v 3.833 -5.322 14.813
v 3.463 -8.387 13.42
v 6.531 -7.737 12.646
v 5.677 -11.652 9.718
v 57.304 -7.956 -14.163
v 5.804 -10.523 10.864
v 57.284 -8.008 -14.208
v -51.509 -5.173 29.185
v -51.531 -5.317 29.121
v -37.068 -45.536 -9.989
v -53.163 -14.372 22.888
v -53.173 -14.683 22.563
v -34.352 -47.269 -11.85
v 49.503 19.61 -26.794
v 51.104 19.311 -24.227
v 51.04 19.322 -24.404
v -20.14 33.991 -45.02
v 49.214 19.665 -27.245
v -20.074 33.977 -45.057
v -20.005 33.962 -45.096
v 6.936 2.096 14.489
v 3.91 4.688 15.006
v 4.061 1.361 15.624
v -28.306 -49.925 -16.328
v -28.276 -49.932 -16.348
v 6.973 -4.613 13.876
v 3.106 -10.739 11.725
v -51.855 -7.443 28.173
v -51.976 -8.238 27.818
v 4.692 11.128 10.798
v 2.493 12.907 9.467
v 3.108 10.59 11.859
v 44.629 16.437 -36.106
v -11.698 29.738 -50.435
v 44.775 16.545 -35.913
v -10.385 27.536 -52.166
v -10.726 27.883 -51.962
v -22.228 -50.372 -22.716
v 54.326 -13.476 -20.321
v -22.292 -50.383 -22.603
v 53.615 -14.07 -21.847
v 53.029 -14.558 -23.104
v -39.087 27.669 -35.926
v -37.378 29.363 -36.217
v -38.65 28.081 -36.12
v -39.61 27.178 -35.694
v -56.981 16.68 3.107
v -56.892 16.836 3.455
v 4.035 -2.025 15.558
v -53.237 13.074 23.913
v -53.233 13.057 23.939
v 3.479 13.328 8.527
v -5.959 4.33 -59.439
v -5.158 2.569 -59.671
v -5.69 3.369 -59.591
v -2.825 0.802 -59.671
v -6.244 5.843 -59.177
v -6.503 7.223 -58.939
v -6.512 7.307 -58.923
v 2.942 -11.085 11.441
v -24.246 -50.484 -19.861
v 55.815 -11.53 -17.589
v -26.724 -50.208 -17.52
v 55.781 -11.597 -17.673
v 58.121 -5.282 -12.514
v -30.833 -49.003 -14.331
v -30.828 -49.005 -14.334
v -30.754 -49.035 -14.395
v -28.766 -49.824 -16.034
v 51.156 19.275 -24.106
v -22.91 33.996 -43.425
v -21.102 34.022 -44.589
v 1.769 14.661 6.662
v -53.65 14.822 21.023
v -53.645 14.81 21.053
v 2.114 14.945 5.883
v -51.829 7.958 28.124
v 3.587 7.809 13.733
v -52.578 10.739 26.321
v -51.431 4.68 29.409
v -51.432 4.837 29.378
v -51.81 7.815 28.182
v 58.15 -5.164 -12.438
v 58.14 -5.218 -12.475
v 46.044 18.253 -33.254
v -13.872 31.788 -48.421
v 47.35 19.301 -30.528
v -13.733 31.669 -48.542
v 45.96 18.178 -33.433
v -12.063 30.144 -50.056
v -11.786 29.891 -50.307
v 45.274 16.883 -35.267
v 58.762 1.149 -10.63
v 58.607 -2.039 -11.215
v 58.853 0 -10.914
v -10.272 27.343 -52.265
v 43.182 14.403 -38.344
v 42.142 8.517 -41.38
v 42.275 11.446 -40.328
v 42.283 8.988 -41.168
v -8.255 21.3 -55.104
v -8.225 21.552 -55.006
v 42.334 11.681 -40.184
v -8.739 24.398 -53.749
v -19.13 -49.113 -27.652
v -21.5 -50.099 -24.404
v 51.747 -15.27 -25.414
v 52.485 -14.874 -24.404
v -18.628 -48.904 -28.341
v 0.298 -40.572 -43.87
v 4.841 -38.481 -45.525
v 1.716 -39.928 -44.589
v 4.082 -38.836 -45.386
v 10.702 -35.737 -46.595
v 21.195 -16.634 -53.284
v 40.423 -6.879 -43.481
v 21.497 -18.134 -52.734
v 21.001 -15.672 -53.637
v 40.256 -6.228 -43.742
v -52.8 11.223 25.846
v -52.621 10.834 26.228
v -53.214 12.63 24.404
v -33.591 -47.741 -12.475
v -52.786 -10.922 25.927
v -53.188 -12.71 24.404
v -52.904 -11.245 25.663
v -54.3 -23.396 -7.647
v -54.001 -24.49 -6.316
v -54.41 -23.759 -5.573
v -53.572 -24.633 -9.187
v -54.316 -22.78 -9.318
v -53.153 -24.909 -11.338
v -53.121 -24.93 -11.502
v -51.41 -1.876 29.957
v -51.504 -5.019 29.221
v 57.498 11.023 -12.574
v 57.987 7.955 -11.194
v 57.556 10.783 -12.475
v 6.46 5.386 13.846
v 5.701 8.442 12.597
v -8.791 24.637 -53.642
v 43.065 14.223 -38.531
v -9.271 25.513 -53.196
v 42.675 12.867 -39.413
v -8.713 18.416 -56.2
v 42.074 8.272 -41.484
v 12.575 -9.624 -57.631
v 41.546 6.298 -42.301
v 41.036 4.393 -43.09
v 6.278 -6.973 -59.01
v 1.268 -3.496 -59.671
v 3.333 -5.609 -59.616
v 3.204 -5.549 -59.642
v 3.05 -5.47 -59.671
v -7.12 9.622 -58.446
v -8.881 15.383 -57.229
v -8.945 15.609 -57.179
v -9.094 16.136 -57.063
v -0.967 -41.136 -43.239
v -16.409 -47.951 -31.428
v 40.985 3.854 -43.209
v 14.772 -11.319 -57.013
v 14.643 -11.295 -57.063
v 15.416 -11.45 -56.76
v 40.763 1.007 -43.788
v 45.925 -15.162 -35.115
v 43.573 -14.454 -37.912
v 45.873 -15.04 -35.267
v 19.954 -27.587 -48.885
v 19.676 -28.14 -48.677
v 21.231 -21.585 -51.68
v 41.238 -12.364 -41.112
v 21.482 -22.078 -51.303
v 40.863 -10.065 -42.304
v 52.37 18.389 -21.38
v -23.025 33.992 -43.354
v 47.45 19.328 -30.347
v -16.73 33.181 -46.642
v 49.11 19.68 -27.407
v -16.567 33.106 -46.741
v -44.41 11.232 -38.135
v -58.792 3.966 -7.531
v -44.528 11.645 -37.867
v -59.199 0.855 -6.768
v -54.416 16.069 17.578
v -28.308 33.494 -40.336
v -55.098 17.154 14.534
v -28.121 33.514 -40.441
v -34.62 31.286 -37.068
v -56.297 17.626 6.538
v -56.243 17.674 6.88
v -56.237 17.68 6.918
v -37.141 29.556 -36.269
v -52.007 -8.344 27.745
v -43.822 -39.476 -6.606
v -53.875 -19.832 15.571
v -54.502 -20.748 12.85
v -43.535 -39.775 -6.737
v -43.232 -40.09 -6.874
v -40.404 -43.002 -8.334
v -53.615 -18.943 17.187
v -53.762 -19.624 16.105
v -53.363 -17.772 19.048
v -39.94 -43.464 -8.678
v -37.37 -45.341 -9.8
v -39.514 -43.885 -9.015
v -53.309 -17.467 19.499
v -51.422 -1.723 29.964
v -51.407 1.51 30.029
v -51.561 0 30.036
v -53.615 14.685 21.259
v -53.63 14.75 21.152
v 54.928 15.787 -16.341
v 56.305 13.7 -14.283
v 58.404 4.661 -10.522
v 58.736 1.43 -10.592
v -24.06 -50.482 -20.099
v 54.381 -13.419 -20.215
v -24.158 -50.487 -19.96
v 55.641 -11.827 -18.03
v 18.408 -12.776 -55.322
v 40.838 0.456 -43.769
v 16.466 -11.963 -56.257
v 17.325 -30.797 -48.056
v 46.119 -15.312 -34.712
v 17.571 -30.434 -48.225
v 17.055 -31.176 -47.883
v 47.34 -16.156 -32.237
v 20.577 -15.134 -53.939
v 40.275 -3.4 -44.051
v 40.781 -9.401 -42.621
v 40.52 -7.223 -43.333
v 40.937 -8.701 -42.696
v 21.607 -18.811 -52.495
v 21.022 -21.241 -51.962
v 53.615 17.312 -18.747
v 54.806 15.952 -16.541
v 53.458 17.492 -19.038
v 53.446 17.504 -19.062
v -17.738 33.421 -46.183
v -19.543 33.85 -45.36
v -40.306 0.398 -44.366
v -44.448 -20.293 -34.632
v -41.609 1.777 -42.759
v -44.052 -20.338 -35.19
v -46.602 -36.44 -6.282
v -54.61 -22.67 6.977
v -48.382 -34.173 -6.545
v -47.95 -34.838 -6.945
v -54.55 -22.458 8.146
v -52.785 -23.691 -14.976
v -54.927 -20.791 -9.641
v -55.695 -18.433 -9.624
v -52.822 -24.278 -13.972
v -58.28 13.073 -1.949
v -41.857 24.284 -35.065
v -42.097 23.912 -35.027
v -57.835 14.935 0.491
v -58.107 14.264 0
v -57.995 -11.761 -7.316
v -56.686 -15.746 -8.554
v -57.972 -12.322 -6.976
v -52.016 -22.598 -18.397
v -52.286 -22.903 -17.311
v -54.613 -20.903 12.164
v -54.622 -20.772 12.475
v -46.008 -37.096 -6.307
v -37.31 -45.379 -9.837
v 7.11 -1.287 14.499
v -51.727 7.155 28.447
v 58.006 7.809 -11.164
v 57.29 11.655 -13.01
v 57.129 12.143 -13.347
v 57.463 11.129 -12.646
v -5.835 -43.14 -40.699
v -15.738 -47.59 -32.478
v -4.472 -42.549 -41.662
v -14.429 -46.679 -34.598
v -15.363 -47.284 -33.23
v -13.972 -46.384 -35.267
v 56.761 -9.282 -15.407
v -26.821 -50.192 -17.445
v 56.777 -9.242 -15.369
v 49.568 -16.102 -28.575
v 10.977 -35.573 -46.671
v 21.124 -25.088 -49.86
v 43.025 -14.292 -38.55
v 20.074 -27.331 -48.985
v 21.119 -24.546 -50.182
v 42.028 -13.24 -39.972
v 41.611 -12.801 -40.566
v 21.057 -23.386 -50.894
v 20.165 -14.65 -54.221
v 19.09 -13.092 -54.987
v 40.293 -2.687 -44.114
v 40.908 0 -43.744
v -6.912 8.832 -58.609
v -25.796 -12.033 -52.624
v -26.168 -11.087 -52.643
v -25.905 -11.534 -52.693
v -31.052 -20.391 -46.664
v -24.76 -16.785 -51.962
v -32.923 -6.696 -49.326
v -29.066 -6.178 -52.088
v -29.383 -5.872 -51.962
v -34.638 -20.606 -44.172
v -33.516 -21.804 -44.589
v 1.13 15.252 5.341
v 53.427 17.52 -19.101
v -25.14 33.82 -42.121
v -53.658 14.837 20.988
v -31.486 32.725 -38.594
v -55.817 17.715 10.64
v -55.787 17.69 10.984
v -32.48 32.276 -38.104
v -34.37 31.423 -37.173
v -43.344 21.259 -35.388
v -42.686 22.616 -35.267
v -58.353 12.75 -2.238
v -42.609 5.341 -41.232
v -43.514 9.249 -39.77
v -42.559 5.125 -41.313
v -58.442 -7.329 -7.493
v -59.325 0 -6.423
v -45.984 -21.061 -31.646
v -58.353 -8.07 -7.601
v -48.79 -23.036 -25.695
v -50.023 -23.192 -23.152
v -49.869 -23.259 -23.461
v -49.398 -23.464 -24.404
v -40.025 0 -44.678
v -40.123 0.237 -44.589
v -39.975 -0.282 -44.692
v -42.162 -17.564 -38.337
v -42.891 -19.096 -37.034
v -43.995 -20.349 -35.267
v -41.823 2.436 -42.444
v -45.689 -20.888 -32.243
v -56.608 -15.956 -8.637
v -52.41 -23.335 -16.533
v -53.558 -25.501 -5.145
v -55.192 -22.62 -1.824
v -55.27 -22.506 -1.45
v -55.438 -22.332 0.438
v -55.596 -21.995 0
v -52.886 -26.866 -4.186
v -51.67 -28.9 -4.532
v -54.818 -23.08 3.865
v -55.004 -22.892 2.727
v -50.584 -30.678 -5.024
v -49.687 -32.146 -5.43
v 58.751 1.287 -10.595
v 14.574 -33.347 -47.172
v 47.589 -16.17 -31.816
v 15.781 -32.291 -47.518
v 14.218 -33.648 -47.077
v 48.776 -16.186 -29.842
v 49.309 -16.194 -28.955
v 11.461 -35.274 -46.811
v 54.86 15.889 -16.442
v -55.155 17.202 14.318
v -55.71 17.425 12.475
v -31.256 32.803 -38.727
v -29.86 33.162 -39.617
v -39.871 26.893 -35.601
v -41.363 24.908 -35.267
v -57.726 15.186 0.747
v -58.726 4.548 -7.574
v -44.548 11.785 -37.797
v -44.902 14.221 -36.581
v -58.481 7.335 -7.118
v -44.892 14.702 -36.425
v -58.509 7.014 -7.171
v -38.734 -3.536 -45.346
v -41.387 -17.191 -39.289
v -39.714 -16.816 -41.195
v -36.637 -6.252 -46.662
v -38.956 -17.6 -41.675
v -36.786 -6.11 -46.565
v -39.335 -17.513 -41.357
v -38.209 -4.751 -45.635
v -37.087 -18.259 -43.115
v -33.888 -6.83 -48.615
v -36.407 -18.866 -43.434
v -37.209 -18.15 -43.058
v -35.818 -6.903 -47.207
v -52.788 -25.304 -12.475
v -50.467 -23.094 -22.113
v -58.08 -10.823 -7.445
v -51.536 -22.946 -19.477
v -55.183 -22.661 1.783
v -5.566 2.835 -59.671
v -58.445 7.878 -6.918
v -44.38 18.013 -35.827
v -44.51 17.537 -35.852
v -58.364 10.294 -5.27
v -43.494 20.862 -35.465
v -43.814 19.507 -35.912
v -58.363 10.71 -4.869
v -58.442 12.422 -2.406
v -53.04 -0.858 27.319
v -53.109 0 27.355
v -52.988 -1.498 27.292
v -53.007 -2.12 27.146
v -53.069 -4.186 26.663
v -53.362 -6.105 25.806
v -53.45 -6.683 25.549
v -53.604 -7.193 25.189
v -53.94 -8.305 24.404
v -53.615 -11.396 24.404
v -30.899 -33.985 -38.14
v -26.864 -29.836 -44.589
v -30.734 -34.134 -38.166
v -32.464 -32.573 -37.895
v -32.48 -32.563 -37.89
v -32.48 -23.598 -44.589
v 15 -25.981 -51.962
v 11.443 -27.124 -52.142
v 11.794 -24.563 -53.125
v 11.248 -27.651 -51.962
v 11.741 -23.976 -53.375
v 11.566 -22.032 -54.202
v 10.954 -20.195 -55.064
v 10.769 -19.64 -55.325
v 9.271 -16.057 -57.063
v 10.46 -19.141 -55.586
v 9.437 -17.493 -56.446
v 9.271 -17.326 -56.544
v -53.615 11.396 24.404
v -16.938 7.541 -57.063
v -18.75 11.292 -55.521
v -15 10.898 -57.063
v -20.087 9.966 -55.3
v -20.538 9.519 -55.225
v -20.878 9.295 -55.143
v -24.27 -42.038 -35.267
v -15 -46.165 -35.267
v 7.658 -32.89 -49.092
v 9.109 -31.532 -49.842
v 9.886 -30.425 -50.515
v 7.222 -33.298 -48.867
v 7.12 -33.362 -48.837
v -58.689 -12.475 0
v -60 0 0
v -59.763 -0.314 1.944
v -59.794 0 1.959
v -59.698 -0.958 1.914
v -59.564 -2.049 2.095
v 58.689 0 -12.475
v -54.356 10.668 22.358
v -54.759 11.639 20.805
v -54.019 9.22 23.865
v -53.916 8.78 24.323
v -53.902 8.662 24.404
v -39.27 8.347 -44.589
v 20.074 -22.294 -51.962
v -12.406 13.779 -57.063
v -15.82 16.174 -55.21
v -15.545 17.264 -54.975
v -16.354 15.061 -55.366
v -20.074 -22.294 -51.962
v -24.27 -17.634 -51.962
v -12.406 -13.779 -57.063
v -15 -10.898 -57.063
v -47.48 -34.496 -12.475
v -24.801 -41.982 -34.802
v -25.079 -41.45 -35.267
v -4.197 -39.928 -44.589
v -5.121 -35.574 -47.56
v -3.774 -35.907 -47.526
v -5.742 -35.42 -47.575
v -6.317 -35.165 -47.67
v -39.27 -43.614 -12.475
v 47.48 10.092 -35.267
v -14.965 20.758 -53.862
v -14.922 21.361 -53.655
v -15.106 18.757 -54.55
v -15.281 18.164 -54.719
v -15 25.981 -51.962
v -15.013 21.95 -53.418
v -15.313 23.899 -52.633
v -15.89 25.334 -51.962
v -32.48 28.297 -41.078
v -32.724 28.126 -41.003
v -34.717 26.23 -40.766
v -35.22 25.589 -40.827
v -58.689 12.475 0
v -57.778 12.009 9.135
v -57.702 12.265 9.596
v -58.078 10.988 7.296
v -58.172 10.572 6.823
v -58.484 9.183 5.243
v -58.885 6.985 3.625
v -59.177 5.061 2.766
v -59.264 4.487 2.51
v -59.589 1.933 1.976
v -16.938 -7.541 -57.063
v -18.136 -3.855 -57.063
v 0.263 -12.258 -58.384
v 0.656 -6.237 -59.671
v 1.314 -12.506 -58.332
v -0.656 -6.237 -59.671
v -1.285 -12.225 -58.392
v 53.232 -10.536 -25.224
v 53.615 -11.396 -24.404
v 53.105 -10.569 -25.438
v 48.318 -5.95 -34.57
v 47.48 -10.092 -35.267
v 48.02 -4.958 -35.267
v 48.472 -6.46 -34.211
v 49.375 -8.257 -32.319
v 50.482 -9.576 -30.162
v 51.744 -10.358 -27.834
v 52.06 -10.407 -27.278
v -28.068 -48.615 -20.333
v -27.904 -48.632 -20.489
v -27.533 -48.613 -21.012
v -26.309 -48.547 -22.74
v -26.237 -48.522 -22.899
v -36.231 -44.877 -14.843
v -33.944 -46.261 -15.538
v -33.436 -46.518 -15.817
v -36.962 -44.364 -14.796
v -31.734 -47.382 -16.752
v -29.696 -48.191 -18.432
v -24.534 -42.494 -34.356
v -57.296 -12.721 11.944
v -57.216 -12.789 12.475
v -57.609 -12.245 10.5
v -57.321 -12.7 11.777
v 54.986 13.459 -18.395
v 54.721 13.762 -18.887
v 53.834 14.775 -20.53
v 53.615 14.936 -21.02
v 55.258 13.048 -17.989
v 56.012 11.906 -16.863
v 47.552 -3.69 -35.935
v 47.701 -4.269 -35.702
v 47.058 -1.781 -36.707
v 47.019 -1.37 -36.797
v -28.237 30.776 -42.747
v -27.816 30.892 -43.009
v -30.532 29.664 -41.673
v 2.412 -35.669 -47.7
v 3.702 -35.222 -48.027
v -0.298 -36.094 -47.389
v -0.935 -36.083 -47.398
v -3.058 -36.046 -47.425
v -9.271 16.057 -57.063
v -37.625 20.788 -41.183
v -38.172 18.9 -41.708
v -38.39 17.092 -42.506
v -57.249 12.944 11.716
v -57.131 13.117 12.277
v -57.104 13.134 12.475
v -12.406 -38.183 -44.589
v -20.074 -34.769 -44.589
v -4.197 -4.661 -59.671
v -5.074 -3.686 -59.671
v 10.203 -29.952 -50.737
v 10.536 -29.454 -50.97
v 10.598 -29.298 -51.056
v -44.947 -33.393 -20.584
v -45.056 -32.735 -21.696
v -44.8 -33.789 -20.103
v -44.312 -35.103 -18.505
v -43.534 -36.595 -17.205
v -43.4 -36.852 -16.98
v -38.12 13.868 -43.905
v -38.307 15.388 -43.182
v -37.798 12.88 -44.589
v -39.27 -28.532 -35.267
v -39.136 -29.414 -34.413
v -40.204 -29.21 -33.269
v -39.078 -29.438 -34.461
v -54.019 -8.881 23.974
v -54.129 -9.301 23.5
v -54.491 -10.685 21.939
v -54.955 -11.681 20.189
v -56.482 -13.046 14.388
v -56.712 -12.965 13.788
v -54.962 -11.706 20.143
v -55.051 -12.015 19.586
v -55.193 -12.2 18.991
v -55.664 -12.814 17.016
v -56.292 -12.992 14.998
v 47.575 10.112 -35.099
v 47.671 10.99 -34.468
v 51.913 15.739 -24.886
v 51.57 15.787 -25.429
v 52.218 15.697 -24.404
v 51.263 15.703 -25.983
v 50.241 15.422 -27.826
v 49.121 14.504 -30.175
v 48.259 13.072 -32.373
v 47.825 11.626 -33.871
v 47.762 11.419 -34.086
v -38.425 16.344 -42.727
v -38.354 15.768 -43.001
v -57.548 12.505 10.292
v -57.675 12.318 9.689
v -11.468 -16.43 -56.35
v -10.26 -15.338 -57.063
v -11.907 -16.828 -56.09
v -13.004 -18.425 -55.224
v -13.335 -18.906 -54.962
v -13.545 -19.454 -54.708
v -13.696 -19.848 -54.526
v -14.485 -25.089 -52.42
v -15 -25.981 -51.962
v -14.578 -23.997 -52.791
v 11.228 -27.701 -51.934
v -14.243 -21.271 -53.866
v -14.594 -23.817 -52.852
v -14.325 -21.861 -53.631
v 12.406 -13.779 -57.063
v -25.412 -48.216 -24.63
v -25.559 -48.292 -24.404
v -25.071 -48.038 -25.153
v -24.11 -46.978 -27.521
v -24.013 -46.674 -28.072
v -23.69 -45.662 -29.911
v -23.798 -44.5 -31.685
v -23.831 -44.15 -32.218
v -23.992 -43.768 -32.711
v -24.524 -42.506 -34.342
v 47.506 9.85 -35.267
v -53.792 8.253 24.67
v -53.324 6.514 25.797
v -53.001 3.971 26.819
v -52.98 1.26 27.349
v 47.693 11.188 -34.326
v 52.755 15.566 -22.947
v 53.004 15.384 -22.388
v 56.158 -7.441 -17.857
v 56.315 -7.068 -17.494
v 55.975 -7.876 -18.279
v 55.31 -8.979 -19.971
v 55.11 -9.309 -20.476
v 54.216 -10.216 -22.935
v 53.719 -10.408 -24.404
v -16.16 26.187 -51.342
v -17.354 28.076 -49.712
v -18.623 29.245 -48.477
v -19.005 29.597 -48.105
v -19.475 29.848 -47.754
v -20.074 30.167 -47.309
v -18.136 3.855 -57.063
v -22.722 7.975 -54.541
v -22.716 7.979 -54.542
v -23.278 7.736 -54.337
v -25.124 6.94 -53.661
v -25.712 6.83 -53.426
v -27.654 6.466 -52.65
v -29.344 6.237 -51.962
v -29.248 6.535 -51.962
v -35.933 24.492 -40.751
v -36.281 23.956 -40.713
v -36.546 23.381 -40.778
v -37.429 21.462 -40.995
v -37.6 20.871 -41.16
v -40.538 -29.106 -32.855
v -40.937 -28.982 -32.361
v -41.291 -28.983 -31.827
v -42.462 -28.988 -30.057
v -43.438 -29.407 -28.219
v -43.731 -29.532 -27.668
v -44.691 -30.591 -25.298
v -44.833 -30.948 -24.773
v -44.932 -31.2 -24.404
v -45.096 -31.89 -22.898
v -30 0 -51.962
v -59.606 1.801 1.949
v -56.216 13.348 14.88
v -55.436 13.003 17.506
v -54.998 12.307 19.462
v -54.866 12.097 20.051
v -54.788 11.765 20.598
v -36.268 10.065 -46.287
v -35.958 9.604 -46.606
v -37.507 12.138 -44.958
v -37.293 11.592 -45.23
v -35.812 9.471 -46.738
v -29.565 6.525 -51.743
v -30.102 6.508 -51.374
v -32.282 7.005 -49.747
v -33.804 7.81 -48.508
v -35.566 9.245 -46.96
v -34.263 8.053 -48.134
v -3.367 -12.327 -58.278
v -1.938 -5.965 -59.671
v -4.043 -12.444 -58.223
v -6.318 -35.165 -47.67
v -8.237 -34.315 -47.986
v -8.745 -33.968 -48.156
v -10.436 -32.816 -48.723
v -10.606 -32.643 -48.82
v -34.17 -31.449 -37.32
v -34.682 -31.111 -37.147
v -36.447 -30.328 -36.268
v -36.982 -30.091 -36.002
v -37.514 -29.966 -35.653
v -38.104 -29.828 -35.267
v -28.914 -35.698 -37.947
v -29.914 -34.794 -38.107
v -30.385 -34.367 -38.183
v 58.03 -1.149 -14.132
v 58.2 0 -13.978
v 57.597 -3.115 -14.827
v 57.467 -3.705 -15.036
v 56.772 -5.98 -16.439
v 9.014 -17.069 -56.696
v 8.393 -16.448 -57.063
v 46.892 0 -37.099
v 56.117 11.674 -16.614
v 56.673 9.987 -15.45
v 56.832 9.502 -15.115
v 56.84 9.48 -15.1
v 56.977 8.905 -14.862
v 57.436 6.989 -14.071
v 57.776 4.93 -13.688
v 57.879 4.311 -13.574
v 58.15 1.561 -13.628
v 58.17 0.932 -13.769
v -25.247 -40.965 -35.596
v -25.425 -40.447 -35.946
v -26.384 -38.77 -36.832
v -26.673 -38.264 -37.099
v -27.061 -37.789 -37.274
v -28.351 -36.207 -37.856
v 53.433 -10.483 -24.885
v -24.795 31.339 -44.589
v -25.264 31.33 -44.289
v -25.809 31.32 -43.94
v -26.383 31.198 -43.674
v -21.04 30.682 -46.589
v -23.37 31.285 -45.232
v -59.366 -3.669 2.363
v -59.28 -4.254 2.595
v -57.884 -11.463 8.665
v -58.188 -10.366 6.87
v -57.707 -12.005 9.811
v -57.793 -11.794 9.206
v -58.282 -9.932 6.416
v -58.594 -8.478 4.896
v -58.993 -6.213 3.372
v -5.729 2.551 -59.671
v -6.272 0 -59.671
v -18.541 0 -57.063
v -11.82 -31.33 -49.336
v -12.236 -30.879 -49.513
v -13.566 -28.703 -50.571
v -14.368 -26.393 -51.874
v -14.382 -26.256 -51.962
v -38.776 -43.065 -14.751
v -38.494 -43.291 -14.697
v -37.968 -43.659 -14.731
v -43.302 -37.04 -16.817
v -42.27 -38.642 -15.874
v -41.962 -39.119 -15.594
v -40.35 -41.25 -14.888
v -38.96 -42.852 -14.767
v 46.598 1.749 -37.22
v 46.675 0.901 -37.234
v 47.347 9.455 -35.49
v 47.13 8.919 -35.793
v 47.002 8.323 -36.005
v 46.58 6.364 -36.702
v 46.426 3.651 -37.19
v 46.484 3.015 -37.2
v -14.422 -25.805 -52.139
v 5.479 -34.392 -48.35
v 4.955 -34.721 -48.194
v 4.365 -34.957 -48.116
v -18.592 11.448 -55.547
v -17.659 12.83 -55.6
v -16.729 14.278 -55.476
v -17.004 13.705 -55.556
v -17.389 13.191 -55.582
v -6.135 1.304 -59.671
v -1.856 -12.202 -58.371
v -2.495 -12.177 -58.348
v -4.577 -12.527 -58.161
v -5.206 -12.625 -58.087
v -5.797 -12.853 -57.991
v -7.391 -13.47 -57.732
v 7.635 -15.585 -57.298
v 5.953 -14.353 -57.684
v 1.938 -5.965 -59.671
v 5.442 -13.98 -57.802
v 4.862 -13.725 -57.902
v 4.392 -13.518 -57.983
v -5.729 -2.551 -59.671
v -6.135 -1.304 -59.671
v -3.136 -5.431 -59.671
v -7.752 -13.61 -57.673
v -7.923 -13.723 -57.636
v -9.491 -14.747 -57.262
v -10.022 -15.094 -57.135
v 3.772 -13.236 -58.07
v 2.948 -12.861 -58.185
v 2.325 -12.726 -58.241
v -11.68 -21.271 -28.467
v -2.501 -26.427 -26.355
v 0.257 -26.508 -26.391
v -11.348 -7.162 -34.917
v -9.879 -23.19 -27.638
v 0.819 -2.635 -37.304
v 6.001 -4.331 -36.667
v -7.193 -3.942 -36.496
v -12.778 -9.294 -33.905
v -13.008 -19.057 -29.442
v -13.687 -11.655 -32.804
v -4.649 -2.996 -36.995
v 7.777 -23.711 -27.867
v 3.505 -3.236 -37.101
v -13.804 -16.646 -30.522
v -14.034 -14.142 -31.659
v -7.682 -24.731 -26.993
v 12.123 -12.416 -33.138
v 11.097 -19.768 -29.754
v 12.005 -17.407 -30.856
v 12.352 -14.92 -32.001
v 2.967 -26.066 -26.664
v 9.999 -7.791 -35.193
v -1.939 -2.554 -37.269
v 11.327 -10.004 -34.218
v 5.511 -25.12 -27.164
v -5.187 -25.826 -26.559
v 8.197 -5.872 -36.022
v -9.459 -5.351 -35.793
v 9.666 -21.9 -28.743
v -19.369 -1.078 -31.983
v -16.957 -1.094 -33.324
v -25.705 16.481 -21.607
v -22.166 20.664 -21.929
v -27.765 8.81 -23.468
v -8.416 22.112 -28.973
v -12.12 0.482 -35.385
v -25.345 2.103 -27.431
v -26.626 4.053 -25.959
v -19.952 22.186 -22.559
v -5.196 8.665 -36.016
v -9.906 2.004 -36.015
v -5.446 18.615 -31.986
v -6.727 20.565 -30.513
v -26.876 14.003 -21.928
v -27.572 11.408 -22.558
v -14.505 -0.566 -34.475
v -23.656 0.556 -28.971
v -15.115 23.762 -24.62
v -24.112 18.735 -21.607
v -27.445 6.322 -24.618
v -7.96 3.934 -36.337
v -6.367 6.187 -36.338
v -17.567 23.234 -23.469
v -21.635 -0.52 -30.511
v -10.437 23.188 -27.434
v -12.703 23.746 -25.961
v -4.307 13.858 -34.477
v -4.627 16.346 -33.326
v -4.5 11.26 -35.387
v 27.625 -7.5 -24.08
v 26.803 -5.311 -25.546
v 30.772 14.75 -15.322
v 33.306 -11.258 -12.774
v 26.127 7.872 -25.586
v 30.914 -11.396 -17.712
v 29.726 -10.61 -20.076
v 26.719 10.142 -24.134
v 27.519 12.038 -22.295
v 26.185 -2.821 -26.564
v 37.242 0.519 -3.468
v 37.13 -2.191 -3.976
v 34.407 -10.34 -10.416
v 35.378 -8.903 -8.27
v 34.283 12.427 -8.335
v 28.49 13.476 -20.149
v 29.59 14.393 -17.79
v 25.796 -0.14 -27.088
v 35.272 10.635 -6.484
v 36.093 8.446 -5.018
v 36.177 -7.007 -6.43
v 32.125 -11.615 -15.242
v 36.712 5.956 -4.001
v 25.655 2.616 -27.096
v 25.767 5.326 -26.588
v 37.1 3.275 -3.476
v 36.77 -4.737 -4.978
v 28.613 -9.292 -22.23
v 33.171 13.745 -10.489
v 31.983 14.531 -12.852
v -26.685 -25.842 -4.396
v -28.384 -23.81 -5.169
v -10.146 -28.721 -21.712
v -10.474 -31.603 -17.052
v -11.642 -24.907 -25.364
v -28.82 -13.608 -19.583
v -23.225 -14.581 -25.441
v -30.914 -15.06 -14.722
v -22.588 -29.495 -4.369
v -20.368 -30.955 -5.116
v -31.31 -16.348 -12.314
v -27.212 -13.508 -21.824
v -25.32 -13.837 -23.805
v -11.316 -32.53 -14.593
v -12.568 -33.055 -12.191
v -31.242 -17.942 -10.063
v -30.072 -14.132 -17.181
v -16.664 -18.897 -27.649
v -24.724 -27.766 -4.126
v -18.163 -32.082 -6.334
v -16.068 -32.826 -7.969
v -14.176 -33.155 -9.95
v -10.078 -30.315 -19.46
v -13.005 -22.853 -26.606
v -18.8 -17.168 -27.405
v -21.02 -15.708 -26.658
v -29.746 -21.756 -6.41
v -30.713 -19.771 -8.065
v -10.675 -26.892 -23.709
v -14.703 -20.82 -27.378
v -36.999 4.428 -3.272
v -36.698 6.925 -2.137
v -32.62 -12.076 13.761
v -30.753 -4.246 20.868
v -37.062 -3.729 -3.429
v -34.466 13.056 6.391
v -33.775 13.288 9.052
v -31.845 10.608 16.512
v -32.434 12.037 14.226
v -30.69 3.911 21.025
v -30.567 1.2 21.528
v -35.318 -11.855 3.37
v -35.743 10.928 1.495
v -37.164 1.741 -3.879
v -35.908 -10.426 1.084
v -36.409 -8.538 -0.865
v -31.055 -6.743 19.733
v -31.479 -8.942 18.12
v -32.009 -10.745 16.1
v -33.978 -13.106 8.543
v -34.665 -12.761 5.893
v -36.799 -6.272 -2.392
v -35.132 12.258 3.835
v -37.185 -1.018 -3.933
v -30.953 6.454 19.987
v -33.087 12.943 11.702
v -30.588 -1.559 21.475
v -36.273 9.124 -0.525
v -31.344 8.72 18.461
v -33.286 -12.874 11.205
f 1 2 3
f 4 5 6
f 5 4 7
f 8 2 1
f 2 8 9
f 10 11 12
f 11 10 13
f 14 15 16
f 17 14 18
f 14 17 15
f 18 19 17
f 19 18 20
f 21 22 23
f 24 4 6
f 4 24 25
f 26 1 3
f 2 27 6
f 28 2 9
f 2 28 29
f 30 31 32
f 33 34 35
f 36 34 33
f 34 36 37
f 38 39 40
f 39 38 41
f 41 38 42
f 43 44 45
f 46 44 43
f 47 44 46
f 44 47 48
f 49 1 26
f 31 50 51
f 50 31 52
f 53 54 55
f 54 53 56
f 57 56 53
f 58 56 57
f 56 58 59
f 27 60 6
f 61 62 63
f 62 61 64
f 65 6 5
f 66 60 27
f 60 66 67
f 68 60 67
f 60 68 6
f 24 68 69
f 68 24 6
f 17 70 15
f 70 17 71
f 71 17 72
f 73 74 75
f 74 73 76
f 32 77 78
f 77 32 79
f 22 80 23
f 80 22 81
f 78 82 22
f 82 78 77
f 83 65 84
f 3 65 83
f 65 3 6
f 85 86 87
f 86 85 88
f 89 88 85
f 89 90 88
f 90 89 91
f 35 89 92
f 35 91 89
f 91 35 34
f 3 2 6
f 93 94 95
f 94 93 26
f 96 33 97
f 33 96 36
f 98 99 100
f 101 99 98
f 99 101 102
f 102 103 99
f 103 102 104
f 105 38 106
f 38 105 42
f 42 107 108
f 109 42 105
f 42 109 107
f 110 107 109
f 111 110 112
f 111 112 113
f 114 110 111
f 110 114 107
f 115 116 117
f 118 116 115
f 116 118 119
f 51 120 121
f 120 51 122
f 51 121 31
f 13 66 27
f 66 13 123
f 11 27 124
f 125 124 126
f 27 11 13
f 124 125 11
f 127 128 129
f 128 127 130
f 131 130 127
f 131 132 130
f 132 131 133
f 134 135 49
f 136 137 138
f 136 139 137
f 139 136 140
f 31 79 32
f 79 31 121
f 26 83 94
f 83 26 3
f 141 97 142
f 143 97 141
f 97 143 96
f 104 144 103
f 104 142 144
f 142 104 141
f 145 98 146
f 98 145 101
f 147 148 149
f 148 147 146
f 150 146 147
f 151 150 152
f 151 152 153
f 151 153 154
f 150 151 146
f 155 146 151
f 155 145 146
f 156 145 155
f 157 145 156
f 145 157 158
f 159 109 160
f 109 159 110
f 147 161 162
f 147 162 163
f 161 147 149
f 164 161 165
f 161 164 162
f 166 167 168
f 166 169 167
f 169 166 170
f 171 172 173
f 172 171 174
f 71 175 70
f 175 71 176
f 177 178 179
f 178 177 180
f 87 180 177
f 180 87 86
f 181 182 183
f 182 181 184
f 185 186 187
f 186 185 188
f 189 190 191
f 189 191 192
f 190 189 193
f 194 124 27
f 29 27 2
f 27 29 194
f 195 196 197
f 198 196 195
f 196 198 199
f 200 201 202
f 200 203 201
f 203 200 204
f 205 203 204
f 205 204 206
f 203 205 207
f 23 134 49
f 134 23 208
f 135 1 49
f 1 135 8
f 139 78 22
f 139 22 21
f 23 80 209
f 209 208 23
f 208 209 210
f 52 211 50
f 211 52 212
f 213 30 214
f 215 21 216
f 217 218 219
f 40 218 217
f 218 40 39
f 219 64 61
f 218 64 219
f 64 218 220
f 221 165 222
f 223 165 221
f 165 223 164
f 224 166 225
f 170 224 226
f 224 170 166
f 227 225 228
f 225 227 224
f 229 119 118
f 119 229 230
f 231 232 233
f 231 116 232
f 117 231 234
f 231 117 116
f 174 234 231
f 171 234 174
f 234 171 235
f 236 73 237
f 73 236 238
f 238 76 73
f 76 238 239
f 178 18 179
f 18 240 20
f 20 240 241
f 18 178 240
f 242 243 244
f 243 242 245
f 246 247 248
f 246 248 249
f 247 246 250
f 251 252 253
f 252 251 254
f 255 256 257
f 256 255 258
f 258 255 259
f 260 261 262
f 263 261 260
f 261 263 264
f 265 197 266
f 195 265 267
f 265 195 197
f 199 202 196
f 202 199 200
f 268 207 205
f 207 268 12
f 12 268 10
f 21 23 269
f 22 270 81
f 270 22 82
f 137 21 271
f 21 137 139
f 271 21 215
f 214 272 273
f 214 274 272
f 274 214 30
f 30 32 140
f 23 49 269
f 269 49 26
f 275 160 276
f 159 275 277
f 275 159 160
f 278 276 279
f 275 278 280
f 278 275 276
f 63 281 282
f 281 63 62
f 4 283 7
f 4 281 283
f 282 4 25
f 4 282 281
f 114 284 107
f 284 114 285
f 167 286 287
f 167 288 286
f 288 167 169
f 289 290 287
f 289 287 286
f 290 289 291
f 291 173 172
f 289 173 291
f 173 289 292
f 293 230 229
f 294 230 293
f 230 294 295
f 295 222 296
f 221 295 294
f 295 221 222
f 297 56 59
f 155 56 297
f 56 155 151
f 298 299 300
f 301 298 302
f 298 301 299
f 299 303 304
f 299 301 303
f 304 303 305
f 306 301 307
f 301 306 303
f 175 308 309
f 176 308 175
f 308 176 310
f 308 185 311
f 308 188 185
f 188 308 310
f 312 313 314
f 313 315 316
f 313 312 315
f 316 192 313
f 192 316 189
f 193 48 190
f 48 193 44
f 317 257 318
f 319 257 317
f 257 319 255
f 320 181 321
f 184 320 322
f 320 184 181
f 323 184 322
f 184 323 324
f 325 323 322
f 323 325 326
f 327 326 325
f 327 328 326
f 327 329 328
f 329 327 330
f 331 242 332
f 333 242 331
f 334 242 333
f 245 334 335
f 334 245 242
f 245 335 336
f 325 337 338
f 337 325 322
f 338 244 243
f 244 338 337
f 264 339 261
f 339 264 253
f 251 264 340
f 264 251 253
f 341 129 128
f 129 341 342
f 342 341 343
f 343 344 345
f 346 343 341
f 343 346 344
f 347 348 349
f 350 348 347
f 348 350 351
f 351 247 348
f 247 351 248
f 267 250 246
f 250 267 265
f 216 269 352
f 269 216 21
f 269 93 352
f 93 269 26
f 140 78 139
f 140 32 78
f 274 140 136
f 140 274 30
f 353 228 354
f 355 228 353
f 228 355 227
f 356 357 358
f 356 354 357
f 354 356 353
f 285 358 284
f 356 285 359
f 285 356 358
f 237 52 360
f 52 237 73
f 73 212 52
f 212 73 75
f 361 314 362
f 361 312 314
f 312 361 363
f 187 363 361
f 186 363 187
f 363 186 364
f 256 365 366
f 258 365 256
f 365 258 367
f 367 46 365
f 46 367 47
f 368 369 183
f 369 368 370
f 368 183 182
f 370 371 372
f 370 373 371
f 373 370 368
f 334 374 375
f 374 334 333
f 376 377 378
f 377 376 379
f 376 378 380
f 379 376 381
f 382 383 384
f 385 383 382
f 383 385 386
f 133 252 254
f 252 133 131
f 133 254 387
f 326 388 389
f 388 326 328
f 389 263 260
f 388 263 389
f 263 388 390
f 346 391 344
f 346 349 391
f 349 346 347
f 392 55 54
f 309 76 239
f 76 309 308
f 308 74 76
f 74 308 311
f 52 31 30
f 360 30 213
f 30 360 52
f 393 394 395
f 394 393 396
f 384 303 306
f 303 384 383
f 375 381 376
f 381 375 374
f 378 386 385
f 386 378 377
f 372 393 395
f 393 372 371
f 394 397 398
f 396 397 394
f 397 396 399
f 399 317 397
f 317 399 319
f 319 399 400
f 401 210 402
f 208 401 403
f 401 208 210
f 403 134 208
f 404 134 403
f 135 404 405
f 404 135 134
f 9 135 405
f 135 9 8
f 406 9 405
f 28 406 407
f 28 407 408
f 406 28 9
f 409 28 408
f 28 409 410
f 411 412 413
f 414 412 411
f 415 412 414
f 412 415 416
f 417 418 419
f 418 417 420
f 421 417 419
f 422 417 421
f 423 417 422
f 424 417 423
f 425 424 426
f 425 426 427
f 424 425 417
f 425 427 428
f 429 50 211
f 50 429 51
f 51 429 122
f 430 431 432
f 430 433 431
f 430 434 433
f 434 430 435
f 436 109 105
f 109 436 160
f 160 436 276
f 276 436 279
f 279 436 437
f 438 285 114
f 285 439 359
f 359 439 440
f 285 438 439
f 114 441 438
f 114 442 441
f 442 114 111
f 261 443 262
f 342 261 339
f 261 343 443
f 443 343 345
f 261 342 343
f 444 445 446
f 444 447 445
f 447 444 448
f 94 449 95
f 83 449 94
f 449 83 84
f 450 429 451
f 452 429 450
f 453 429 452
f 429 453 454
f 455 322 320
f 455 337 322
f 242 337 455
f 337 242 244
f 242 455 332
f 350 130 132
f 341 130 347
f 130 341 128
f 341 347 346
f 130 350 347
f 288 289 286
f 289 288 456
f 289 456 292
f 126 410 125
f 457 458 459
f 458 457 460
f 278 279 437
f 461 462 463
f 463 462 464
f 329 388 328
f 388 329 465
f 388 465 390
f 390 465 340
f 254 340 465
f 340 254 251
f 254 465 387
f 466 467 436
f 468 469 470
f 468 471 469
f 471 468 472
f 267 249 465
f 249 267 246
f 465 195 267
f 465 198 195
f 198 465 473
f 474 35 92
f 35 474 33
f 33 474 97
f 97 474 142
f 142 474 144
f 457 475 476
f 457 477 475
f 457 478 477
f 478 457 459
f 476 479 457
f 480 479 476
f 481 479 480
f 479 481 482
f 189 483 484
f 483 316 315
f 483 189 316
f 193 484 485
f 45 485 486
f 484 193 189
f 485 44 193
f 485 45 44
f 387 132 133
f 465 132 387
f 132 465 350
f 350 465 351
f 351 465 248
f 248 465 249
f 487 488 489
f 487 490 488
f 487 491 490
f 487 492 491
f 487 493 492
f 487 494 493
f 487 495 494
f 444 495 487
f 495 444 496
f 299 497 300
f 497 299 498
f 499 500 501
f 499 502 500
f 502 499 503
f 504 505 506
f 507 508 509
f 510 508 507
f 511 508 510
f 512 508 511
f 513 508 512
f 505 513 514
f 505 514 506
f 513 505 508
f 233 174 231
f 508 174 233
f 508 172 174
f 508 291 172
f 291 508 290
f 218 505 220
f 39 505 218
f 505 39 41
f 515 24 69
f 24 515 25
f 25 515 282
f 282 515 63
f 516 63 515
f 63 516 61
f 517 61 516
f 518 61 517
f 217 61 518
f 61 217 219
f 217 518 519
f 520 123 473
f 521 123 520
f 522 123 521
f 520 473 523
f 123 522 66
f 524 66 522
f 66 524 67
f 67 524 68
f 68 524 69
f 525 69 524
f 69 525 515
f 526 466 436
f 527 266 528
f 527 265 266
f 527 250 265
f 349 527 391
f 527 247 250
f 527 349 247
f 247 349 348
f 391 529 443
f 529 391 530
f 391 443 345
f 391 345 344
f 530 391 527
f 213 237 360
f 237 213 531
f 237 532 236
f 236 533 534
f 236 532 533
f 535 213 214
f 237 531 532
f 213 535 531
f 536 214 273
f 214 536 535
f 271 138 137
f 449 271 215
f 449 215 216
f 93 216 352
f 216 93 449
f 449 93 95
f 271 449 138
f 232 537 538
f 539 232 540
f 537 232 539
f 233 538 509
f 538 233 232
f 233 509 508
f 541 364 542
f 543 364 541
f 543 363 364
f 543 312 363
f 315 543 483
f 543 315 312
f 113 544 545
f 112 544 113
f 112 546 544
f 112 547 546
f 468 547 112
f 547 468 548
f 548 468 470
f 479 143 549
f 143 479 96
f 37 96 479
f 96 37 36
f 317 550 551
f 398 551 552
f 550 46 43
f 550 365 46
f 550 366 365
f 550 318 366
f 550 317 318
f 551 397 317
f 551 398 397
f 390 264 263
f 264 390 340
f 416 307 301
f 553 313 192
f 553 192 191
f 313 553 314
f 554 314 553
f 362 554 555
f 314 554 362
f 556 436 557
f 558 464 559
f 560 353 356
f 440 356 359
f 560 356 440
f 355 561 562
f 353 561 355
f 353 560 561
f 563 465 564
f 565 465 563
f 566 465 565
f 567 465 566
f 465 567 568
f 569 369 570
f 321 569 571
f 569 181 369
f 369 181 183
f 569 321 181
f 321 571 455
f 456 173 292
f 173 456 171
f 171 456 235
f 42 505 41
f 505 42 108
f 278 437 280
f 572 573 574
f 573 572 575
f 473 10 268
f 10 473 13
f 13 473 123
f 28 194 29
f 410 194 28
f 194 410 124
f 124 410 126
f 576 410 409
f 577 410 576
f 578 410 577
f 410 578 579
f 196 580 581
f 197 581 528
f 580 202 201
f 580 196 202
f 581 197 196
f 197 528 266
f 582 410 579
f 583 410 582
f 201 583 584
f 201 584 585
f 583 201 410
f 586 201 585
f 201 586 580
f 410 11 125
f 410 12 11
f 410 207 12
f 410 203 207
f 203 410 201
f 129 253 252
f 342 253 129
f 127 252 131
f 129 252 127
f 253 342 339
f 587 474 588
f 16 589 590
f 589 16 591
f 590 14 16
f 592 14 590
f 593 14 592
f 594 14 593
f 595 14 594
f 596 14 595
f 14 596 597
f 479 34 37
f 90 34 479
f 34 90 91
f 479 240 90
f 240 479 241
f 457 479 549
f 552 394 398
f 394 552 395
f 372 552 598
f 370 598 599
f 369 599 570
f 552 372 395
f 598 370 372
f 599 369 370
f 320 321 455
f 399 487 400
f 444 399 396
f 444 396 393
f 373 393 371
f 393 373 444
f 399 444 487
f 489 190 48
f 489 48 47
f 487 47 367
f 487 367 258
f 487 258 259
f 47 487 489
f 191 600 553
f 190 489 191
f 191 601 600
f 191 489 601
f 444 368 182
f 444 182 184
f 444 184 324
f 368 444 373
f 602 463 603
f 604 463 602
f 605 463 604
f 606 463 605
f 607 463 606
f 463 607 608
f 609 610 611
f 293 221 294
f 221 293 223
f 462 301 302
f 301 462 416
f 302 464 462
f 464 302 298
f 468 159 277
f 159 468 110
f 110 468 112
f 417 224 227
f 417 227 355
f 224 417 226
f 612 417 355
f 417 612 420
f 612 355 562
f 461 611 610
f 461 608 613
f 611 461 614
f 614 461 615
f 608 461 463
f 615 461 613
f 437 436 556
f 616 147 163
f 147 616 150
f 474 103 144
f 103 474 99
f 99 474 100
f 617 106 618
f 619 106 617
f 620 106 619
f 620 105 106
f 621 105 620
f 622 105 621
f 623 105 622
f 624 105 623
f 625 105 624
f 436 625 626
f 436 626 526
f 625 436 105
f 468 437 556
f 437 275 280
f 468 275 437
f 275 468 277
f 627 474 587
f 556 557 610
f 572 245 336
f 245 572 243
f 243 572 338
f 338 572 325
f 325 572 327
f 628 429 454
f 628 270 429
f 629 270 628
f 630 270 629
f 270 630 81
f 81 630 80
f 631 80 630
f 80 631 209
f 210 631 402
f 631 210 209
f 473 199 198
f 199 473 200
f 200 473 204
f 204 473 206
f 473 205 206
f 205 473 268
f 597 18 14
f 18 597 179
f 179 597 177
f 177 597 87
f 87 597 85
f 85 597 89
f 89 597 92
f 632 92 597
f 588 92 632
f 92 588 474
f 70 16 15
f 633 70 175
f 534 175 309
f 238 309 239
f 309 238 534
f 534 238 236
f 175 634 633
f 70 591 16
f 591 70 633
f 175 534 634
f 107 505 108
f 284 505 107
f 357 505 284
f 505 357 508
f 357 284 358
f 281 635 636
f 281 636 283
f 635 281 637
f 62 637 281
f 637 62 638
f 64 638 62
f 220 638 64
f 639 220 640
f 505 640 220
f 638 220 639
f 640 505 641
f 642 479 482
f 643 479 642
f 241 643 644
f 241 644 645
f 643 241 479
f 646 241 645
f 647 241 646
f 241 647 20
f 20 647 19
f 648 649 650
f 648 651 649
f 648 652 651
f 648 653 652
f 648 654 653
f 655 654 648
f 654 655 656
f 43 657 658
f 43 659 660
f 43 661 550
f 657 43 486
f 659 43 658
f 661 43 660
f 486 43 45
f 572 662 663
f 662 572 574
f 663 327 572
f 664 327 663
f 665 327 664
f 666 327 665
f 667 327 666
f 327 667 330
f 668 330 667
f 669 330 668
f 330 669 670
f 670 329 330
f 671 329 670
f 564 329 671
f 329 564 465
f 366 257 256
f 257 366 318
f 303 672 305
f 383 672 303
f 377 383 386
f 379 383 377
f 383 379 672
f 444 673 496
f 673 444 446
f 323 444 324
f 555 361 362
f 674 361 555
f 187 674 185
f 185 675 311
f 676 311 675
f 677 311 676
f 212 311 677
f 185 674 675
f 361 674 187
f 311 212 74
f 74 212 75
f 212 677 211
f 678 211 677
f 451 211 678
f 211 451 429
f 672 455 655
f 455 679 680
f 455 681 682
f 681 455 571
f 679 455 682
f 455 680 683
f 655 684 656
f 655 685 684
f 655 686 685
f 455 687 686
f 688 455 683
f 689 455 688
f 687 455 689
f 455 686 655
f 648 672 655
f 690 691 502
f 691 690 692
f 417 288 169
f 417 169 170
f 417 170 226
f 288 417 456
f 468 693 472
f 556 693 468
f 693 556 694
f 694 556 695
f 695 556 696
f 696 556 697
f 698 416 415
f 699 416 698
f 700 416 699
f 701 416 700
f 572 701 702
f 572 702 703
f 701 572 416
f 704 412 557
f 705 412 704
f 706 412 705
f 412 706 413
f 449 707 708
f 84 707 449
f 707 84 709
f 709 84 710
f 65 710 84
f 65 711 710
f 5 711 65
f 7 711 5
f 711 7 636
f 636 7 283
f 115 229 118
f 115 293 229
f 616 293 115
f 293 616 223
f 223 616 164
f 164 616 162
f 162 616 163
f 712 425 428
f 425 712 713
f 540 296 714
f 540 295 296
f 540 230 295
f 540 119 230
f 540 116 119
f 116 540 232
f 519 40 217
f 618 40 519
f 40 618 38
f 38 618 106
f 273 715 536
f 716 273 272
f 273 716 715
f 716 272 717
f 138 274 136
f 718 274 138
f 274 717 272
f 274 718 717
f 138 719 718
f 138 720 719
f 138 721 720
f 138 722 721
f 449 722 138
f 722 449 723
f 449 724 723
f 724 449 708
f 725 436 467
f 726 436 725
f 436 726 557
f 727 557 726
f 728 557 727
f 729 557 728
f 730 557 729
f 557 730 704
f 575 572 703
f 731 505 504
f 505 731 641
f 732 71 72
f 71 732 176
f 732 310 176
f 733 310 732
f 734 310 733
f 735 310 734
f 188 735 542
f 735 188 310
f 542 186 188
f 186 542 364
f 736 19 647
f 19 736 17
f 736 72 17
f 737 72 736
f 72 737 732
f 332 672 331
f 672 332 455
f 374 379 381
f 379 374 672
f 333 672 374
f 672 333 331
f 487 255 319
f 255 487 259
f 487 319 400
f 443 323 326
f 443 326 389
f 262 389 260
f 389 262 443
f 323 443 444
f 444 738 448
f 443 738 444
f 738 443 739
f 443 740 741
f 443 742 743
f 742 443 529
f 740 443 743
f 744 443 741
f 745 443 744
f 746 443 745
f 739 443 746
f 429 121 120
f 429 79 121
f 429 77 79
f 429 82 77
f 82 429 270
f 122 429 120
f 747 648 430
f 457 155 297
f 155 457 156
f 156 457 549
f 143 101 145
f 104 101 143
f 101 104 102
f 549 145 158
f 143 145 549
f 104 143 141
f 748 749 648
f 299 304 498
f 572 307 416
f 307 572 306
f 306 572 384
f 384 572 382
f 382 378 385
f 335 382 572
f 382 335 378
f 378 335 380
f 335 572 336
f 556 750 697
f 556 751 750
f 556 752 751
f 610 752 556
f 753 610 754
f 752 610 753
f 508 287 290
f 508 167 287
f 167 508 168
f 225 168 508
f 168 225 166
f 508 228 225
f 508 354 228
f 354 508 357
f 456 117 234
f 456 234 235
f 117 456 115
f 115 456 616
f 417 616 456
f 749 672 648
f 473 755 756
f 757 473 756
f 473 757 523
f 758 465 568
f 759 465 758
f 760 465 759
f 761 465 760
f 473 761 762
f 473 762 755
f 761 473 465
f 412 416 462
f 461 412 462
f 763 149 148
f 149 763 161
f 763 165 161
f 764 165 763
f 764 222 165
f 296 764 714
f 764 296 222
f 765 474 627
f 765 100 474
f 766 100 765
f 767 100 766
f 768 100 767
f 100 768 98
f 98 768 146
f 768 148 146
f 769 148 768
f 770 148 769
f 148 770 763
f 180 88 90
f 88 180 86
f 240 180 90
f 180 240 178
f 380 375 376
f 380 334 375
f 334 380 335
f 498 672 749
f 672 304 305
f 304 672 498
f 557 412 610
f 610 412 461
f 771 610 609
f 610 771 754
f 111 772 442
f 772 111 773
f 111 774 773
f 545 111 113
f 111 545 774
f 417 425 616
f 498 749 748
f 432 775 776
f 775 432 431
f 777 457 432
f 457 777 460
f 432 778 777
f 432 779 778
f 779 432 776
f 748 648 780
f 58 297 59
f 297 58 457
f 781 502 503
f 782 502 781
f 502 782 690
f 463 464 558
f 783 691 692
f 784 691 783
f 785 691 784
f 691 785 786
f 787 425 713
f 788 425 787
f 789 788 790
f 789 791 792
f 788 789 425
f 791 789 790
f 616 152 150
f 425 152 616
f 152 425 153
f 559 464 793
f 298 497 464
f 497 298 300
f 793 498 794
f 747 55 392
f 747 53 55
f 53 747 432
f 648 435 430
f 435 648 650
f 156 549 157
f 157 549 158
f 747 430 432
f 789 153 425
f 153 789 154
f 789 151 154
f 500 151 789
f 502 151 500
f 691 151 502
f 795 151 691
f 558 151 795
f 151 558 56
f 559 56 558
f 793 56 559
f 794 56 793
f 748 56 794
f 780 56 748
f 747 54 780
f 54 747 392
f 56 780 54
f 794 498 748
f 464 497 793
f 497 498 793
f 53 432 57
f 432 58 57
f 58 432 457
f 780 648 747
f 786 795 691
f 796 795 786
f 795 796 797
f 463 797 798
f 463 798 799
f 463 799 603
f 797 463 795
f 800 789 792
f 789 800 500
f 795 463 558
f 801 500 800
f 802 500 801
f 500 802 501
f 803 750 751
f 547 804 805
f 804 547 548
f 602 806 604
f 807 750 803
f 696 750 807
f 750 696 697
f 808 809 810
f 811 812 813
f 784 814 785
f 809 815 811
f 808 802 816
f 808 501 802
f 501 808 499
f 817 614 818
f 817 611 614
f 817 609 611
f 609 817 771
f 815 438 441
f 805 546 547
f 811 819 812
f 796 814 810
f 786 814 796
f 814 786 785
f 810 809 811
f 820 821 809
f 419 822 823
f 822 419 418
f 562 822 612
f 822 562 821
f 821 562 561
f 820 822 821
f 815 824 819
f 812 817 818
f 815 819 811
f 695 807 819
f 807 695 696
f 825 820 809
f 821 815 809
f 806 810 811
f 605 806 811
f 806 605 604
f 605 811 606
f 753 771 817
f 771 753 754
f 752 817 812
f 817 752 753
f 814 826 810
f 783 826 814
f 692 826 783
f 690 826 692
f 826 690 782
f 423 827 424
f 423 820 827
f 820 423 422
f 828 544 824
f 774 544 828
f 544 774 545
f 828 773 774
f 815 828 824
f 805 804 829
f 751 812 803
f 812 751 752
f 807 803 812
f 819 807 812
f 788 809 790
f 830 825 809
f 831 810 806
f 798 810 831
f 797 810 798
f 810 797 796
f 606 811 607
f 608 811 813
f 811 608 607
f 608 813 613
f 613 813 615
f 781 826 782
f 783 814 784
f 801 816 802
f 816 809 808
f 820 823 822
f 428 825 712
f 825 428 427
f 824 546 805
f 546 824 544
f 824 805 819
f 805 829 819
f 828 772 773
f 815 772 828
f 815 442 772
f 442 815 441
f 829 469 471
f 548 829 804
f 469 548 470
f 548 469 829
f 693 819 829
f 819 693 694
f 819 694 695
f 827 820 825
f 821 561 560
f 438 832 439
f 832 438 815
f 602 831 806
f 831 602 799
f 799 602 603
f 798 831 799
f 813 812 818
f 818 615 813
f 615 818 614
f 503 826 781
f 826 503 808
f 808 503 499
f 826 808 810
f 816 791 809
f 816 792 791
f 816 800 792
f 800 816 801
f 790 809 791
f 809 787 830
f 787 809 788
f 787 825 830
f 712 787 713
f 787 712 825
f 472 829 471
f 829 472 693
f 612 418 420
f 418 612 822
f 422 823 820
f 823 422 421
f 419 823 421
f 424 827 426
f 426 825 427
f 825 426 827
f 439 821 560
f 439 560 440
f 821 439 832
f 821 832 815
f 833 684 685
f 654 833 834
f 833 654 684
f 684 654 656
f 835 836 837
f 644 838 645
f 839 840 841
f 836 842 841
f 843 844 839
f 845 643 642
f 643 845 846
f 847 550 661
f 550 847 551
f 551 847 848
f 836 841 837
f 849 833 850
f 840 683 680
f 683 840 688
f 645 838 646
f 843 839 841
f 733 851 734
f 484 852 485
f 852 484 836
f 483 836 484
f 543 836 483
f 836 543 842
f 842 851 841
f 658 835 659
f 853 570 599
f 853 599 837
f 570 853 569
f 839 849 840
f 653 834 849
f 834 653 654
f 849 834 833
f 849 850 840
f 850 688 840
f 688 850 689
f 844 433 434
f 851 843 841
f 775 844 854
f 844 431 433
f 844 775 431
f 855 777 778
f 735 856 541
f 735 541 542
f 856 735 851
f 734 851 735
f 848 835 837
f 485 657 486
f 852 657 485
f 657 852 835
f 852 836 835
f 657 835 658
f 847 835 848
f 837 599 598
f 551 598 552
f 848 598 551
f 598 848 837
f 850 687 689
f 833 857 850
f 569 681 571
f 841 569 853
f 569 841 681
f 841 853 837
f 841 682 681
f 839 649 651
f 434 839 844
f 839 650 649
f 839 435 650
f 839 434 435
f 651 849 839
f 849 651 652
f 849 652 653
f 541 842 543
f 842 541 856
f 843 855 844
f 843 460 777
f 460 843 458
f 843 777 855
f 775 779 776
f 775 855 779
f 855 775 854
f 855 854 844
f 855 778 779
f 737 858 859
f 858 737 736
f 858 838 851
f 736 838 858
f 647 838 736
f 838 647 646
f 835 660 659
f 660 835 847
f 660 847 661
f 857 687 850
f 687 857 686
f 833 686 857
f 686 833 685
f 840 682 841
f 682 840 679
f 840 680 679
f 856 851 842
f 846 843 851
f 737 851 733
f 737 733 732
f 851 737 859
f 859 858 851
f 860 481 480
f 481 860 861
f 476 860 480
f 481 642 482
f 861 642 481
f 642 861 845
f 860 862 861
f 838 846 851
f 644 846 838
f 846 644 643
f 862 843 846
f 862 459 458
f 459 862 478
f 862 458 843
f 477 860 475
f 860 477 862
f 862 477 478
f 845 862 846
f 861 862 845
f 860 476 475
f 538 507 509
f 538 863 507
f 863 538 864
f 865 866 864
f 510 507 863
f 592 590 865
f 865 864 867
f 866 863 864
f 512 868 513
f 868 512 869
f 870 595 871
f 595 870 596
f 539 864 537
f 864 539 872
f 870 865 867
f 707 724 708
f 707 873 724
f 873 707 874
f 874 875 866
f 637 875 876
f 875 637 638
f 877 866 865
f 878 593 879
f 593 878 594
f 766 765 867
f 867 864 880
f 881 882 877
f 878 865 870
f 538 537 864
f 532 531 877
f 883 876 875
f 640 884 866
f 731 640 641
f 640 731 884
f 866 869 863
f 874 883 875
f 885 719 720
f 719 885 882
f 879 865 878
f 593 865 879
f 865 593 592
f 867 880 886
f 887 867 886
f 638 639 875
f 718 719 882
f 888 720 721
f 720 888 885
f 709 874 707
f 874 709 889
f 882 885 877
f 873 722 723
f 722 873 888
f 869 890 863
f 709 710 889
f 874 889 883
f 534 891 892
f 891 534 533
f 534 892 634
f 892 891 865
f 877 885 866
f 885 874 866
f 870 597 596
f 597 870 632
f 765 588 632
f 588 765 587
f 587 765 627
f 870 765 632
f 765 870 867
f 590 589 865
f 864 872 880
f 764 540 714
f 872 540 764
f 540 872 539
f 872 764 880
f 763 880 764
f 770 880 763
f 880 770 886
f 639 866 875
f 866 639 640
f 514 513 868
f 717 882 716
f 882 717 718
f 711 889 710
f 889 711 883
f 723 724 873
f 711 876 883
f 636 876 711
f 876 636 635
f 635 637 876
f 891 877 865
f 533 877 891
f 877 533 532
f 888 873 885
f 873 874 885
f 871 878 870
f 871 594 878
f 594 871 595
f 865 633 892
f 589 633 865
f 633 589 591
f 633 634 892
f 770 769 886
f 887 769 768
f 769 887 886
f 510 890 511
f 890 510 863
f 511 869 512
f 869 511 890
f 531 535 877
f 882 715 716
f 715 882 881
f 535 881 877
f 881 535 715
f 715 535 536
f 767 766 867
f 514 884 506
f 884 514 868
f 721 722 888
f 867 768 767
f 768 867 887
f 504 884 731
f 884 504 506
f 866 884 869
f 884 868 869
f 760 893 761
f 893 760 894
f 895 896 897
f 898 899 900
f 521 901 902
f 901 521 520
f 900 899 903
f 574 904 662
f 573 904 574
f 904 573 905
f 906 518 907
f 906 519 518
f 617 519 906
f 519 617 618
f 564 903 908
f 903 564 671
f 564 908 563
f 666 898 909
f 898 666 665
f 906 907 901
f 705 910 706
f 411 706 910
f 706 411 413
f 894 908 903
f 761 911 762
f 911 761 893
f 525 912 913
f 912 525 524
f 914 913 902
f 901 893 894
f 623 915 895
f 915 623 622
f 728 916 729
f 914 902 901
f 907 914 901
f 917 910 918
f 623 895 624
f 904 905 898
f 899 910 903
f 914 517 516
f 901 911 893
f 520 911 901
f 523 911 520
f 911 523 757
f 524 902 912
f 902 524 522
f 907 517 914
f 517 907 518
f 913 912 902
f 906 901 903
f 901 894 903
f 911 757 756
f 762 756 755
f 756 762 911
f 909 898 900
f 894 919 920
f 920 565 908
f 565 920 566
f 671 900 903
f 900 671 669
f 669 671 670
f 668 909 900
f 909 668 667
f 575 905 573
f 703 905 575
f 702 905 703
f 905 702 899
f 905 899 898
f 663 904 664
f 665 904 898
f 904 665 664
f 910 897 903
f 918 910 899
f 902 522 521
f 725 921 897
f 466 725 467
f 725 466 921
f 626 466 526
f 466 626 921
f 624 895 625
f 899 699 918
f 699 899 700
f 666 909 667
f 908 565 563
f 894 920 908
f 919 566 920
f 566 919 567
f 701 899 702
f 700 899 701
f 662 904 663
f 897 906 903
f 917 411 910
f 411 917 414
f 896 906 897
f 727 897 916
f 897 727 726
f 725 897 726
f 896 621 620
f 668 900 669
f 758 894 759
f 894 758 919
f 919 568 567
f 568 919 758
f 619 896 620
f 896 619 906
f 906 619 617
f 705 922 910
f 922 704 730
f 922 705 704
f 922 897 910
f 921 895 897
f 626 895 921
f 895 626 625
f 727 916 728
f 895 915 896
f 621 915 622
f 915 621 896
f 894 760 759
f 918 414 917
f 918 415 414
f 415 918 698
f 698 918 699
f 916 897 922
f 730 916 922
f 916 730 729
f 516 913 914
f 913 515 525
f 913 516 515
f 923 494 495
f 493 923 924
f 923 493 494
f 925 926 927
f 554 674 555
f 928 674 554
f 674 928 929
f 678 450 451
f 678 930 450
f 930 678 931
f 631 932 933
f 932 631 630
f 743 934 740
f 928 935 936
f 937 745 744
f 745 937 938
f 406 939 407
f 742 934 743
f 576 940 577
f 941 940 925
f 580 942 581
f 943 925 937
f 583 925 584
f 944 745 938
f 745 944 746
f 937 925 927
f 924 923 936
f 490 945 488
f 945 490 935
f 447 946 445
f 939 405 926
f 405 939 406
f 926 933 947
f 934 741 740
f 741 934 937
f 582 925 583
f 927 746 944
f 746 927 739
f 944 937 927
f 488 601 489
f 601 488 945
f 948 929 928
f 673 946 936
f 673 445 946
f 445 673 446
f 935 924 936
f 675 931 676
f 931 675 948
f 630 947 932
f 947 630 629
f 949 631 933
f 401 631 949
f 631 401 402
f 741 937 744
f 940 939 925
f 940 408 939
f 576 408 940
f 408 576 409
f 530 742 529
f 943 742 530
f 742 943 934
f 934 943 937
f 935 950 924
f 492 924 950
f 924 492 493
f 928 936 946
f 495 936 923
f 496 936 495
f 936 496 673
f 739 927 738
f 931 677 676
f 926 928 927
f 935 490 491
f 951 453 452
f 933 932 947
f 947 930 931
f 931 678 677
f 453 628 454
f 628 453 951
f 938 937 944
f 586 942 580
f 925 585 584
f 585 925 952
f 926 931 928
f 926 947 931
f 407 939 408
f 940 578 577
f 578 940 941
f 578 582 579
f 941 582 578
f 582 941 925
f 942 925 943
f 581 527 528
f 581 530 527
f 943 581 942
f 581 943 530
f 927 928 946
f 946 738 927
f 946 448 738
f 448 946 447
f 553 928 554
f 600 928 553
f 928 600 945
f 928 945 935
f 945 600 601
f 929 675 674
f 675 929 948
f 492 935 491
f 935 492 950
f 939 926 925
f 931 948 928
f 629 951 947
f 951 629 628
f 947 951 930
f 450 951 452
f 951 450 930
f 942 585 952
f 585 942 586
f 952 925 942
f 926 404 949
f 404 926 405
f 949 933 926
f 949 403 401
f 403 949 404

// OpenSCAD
difference() {
	intersection() {
		hull() {
			rotate(a = -104.7610434293, v = [0.5105943296, -0.8212041978, 0.0000000000]) {
				rotate(a = -90.0000000000, v = [0.2079387890, -0.9781418404, 0.0000000000]) {
					cylinder(h = 60, r = 16.2000000000);
				}
			}
			rotate(a = -104.7610434293, v = [0.5105943296, -0.8212041978, 0.0000000000]) {
				rotate(a = -90.0000000000, v = [0.8909939466, -0.4540151837, 0.0000000000]) {
					cylinder(h = 60, r = 16.2000000000);
				}
			}
			rotate(a = -104.7610434293, v = [0.5105943296, -0.8212041978, 0.0000000000]) {
				rotate(a = -29.3094094074, v = [-0.2535028282, -0.4187740306, 0.0000000000]) {
					cylinder(h = 60, r = 16.2000000000);
				}
			}
			rotate(a = -104.7610434293, v = [0.5105943296, -0.8212041978, 0.0000000000]) {
				rotate(a = -135.2558345182, v = [0.1310456171, -0.6916371526, 0.0000000000]) {
					cylinder(h = 60, r = 16.2000000000);
				}
			}
			rotate(a = -104.7610434293, v = [0.5105943296, -0.8212041978, 0.0000000000]) {
				rotate(a = -149.0427102646, v = [0.4179419891, 0.2998846339, -0.0000000000]) {
					cylinder(h = 60, r = 16.2000000000);
				}
			}
		}
		sphere(r = 60);
	}
	union() {
		rotate(a = -104.7610434293, v = [0.5105943296, -0.8212041978, 0.0000000000]) {
			rotate(a = -90.0000000000, v = [0.2079387890, -0.9781418404, 0.0000000000]) {
				translate(v = [0, 0, 35]) {
					cylinder(h = 100, r = 13.2000000000);
				}
			}
		}
		rotate(a = -104.7610434293, v = [0.5105943296, -0.8212041978, 0.0000000000]) {
			rotate(a = -90.0000000000, v = [0.8909939466, -0.4540151837, 0.0000000000]) {
				translate(v = [0, 0, 35]) {
					cylinder(h = 100, r = 13.2000000000);
				}
			}
		}
		rotate(a = -104.7610434293, v = [0.5105943296, -0.8212041978, 0.0000000000]) {
			rotate(a = -29.3094094074, v = [-0.2535028282, -0.4187740306, 0.0000000000]) {
				translate(v = [0, 0, 35]) {
					cylinder(h = 100, r = 13.2000000000);
				}
			}
		}
		rotate(a = -104.7610434293, v = [0.5105943296, -0.8212041978, 0.0000000000]) {
			rotate(a = -135.2558345182, v = [0.1310456171, -0.6916371526, 0.0000000000]) {
				translate(v = [0, 0, 35]) {
					cylinder(h = 100, r = 13.2000000000);
				}
			}
		}
		rotate(a = -104.7610434293, v = [0.5105943296, -0.8212041978, 0.0000000000]) {
			rotate(a = -149.0427102646, v = [0.4179419891, 0.2998846339, -0.0000000000]) {
				translate(v = [0, 0, 35]) {
					cylinder(h = 100, r = 13.2000000000);
				}
			}
		}
	}
}
